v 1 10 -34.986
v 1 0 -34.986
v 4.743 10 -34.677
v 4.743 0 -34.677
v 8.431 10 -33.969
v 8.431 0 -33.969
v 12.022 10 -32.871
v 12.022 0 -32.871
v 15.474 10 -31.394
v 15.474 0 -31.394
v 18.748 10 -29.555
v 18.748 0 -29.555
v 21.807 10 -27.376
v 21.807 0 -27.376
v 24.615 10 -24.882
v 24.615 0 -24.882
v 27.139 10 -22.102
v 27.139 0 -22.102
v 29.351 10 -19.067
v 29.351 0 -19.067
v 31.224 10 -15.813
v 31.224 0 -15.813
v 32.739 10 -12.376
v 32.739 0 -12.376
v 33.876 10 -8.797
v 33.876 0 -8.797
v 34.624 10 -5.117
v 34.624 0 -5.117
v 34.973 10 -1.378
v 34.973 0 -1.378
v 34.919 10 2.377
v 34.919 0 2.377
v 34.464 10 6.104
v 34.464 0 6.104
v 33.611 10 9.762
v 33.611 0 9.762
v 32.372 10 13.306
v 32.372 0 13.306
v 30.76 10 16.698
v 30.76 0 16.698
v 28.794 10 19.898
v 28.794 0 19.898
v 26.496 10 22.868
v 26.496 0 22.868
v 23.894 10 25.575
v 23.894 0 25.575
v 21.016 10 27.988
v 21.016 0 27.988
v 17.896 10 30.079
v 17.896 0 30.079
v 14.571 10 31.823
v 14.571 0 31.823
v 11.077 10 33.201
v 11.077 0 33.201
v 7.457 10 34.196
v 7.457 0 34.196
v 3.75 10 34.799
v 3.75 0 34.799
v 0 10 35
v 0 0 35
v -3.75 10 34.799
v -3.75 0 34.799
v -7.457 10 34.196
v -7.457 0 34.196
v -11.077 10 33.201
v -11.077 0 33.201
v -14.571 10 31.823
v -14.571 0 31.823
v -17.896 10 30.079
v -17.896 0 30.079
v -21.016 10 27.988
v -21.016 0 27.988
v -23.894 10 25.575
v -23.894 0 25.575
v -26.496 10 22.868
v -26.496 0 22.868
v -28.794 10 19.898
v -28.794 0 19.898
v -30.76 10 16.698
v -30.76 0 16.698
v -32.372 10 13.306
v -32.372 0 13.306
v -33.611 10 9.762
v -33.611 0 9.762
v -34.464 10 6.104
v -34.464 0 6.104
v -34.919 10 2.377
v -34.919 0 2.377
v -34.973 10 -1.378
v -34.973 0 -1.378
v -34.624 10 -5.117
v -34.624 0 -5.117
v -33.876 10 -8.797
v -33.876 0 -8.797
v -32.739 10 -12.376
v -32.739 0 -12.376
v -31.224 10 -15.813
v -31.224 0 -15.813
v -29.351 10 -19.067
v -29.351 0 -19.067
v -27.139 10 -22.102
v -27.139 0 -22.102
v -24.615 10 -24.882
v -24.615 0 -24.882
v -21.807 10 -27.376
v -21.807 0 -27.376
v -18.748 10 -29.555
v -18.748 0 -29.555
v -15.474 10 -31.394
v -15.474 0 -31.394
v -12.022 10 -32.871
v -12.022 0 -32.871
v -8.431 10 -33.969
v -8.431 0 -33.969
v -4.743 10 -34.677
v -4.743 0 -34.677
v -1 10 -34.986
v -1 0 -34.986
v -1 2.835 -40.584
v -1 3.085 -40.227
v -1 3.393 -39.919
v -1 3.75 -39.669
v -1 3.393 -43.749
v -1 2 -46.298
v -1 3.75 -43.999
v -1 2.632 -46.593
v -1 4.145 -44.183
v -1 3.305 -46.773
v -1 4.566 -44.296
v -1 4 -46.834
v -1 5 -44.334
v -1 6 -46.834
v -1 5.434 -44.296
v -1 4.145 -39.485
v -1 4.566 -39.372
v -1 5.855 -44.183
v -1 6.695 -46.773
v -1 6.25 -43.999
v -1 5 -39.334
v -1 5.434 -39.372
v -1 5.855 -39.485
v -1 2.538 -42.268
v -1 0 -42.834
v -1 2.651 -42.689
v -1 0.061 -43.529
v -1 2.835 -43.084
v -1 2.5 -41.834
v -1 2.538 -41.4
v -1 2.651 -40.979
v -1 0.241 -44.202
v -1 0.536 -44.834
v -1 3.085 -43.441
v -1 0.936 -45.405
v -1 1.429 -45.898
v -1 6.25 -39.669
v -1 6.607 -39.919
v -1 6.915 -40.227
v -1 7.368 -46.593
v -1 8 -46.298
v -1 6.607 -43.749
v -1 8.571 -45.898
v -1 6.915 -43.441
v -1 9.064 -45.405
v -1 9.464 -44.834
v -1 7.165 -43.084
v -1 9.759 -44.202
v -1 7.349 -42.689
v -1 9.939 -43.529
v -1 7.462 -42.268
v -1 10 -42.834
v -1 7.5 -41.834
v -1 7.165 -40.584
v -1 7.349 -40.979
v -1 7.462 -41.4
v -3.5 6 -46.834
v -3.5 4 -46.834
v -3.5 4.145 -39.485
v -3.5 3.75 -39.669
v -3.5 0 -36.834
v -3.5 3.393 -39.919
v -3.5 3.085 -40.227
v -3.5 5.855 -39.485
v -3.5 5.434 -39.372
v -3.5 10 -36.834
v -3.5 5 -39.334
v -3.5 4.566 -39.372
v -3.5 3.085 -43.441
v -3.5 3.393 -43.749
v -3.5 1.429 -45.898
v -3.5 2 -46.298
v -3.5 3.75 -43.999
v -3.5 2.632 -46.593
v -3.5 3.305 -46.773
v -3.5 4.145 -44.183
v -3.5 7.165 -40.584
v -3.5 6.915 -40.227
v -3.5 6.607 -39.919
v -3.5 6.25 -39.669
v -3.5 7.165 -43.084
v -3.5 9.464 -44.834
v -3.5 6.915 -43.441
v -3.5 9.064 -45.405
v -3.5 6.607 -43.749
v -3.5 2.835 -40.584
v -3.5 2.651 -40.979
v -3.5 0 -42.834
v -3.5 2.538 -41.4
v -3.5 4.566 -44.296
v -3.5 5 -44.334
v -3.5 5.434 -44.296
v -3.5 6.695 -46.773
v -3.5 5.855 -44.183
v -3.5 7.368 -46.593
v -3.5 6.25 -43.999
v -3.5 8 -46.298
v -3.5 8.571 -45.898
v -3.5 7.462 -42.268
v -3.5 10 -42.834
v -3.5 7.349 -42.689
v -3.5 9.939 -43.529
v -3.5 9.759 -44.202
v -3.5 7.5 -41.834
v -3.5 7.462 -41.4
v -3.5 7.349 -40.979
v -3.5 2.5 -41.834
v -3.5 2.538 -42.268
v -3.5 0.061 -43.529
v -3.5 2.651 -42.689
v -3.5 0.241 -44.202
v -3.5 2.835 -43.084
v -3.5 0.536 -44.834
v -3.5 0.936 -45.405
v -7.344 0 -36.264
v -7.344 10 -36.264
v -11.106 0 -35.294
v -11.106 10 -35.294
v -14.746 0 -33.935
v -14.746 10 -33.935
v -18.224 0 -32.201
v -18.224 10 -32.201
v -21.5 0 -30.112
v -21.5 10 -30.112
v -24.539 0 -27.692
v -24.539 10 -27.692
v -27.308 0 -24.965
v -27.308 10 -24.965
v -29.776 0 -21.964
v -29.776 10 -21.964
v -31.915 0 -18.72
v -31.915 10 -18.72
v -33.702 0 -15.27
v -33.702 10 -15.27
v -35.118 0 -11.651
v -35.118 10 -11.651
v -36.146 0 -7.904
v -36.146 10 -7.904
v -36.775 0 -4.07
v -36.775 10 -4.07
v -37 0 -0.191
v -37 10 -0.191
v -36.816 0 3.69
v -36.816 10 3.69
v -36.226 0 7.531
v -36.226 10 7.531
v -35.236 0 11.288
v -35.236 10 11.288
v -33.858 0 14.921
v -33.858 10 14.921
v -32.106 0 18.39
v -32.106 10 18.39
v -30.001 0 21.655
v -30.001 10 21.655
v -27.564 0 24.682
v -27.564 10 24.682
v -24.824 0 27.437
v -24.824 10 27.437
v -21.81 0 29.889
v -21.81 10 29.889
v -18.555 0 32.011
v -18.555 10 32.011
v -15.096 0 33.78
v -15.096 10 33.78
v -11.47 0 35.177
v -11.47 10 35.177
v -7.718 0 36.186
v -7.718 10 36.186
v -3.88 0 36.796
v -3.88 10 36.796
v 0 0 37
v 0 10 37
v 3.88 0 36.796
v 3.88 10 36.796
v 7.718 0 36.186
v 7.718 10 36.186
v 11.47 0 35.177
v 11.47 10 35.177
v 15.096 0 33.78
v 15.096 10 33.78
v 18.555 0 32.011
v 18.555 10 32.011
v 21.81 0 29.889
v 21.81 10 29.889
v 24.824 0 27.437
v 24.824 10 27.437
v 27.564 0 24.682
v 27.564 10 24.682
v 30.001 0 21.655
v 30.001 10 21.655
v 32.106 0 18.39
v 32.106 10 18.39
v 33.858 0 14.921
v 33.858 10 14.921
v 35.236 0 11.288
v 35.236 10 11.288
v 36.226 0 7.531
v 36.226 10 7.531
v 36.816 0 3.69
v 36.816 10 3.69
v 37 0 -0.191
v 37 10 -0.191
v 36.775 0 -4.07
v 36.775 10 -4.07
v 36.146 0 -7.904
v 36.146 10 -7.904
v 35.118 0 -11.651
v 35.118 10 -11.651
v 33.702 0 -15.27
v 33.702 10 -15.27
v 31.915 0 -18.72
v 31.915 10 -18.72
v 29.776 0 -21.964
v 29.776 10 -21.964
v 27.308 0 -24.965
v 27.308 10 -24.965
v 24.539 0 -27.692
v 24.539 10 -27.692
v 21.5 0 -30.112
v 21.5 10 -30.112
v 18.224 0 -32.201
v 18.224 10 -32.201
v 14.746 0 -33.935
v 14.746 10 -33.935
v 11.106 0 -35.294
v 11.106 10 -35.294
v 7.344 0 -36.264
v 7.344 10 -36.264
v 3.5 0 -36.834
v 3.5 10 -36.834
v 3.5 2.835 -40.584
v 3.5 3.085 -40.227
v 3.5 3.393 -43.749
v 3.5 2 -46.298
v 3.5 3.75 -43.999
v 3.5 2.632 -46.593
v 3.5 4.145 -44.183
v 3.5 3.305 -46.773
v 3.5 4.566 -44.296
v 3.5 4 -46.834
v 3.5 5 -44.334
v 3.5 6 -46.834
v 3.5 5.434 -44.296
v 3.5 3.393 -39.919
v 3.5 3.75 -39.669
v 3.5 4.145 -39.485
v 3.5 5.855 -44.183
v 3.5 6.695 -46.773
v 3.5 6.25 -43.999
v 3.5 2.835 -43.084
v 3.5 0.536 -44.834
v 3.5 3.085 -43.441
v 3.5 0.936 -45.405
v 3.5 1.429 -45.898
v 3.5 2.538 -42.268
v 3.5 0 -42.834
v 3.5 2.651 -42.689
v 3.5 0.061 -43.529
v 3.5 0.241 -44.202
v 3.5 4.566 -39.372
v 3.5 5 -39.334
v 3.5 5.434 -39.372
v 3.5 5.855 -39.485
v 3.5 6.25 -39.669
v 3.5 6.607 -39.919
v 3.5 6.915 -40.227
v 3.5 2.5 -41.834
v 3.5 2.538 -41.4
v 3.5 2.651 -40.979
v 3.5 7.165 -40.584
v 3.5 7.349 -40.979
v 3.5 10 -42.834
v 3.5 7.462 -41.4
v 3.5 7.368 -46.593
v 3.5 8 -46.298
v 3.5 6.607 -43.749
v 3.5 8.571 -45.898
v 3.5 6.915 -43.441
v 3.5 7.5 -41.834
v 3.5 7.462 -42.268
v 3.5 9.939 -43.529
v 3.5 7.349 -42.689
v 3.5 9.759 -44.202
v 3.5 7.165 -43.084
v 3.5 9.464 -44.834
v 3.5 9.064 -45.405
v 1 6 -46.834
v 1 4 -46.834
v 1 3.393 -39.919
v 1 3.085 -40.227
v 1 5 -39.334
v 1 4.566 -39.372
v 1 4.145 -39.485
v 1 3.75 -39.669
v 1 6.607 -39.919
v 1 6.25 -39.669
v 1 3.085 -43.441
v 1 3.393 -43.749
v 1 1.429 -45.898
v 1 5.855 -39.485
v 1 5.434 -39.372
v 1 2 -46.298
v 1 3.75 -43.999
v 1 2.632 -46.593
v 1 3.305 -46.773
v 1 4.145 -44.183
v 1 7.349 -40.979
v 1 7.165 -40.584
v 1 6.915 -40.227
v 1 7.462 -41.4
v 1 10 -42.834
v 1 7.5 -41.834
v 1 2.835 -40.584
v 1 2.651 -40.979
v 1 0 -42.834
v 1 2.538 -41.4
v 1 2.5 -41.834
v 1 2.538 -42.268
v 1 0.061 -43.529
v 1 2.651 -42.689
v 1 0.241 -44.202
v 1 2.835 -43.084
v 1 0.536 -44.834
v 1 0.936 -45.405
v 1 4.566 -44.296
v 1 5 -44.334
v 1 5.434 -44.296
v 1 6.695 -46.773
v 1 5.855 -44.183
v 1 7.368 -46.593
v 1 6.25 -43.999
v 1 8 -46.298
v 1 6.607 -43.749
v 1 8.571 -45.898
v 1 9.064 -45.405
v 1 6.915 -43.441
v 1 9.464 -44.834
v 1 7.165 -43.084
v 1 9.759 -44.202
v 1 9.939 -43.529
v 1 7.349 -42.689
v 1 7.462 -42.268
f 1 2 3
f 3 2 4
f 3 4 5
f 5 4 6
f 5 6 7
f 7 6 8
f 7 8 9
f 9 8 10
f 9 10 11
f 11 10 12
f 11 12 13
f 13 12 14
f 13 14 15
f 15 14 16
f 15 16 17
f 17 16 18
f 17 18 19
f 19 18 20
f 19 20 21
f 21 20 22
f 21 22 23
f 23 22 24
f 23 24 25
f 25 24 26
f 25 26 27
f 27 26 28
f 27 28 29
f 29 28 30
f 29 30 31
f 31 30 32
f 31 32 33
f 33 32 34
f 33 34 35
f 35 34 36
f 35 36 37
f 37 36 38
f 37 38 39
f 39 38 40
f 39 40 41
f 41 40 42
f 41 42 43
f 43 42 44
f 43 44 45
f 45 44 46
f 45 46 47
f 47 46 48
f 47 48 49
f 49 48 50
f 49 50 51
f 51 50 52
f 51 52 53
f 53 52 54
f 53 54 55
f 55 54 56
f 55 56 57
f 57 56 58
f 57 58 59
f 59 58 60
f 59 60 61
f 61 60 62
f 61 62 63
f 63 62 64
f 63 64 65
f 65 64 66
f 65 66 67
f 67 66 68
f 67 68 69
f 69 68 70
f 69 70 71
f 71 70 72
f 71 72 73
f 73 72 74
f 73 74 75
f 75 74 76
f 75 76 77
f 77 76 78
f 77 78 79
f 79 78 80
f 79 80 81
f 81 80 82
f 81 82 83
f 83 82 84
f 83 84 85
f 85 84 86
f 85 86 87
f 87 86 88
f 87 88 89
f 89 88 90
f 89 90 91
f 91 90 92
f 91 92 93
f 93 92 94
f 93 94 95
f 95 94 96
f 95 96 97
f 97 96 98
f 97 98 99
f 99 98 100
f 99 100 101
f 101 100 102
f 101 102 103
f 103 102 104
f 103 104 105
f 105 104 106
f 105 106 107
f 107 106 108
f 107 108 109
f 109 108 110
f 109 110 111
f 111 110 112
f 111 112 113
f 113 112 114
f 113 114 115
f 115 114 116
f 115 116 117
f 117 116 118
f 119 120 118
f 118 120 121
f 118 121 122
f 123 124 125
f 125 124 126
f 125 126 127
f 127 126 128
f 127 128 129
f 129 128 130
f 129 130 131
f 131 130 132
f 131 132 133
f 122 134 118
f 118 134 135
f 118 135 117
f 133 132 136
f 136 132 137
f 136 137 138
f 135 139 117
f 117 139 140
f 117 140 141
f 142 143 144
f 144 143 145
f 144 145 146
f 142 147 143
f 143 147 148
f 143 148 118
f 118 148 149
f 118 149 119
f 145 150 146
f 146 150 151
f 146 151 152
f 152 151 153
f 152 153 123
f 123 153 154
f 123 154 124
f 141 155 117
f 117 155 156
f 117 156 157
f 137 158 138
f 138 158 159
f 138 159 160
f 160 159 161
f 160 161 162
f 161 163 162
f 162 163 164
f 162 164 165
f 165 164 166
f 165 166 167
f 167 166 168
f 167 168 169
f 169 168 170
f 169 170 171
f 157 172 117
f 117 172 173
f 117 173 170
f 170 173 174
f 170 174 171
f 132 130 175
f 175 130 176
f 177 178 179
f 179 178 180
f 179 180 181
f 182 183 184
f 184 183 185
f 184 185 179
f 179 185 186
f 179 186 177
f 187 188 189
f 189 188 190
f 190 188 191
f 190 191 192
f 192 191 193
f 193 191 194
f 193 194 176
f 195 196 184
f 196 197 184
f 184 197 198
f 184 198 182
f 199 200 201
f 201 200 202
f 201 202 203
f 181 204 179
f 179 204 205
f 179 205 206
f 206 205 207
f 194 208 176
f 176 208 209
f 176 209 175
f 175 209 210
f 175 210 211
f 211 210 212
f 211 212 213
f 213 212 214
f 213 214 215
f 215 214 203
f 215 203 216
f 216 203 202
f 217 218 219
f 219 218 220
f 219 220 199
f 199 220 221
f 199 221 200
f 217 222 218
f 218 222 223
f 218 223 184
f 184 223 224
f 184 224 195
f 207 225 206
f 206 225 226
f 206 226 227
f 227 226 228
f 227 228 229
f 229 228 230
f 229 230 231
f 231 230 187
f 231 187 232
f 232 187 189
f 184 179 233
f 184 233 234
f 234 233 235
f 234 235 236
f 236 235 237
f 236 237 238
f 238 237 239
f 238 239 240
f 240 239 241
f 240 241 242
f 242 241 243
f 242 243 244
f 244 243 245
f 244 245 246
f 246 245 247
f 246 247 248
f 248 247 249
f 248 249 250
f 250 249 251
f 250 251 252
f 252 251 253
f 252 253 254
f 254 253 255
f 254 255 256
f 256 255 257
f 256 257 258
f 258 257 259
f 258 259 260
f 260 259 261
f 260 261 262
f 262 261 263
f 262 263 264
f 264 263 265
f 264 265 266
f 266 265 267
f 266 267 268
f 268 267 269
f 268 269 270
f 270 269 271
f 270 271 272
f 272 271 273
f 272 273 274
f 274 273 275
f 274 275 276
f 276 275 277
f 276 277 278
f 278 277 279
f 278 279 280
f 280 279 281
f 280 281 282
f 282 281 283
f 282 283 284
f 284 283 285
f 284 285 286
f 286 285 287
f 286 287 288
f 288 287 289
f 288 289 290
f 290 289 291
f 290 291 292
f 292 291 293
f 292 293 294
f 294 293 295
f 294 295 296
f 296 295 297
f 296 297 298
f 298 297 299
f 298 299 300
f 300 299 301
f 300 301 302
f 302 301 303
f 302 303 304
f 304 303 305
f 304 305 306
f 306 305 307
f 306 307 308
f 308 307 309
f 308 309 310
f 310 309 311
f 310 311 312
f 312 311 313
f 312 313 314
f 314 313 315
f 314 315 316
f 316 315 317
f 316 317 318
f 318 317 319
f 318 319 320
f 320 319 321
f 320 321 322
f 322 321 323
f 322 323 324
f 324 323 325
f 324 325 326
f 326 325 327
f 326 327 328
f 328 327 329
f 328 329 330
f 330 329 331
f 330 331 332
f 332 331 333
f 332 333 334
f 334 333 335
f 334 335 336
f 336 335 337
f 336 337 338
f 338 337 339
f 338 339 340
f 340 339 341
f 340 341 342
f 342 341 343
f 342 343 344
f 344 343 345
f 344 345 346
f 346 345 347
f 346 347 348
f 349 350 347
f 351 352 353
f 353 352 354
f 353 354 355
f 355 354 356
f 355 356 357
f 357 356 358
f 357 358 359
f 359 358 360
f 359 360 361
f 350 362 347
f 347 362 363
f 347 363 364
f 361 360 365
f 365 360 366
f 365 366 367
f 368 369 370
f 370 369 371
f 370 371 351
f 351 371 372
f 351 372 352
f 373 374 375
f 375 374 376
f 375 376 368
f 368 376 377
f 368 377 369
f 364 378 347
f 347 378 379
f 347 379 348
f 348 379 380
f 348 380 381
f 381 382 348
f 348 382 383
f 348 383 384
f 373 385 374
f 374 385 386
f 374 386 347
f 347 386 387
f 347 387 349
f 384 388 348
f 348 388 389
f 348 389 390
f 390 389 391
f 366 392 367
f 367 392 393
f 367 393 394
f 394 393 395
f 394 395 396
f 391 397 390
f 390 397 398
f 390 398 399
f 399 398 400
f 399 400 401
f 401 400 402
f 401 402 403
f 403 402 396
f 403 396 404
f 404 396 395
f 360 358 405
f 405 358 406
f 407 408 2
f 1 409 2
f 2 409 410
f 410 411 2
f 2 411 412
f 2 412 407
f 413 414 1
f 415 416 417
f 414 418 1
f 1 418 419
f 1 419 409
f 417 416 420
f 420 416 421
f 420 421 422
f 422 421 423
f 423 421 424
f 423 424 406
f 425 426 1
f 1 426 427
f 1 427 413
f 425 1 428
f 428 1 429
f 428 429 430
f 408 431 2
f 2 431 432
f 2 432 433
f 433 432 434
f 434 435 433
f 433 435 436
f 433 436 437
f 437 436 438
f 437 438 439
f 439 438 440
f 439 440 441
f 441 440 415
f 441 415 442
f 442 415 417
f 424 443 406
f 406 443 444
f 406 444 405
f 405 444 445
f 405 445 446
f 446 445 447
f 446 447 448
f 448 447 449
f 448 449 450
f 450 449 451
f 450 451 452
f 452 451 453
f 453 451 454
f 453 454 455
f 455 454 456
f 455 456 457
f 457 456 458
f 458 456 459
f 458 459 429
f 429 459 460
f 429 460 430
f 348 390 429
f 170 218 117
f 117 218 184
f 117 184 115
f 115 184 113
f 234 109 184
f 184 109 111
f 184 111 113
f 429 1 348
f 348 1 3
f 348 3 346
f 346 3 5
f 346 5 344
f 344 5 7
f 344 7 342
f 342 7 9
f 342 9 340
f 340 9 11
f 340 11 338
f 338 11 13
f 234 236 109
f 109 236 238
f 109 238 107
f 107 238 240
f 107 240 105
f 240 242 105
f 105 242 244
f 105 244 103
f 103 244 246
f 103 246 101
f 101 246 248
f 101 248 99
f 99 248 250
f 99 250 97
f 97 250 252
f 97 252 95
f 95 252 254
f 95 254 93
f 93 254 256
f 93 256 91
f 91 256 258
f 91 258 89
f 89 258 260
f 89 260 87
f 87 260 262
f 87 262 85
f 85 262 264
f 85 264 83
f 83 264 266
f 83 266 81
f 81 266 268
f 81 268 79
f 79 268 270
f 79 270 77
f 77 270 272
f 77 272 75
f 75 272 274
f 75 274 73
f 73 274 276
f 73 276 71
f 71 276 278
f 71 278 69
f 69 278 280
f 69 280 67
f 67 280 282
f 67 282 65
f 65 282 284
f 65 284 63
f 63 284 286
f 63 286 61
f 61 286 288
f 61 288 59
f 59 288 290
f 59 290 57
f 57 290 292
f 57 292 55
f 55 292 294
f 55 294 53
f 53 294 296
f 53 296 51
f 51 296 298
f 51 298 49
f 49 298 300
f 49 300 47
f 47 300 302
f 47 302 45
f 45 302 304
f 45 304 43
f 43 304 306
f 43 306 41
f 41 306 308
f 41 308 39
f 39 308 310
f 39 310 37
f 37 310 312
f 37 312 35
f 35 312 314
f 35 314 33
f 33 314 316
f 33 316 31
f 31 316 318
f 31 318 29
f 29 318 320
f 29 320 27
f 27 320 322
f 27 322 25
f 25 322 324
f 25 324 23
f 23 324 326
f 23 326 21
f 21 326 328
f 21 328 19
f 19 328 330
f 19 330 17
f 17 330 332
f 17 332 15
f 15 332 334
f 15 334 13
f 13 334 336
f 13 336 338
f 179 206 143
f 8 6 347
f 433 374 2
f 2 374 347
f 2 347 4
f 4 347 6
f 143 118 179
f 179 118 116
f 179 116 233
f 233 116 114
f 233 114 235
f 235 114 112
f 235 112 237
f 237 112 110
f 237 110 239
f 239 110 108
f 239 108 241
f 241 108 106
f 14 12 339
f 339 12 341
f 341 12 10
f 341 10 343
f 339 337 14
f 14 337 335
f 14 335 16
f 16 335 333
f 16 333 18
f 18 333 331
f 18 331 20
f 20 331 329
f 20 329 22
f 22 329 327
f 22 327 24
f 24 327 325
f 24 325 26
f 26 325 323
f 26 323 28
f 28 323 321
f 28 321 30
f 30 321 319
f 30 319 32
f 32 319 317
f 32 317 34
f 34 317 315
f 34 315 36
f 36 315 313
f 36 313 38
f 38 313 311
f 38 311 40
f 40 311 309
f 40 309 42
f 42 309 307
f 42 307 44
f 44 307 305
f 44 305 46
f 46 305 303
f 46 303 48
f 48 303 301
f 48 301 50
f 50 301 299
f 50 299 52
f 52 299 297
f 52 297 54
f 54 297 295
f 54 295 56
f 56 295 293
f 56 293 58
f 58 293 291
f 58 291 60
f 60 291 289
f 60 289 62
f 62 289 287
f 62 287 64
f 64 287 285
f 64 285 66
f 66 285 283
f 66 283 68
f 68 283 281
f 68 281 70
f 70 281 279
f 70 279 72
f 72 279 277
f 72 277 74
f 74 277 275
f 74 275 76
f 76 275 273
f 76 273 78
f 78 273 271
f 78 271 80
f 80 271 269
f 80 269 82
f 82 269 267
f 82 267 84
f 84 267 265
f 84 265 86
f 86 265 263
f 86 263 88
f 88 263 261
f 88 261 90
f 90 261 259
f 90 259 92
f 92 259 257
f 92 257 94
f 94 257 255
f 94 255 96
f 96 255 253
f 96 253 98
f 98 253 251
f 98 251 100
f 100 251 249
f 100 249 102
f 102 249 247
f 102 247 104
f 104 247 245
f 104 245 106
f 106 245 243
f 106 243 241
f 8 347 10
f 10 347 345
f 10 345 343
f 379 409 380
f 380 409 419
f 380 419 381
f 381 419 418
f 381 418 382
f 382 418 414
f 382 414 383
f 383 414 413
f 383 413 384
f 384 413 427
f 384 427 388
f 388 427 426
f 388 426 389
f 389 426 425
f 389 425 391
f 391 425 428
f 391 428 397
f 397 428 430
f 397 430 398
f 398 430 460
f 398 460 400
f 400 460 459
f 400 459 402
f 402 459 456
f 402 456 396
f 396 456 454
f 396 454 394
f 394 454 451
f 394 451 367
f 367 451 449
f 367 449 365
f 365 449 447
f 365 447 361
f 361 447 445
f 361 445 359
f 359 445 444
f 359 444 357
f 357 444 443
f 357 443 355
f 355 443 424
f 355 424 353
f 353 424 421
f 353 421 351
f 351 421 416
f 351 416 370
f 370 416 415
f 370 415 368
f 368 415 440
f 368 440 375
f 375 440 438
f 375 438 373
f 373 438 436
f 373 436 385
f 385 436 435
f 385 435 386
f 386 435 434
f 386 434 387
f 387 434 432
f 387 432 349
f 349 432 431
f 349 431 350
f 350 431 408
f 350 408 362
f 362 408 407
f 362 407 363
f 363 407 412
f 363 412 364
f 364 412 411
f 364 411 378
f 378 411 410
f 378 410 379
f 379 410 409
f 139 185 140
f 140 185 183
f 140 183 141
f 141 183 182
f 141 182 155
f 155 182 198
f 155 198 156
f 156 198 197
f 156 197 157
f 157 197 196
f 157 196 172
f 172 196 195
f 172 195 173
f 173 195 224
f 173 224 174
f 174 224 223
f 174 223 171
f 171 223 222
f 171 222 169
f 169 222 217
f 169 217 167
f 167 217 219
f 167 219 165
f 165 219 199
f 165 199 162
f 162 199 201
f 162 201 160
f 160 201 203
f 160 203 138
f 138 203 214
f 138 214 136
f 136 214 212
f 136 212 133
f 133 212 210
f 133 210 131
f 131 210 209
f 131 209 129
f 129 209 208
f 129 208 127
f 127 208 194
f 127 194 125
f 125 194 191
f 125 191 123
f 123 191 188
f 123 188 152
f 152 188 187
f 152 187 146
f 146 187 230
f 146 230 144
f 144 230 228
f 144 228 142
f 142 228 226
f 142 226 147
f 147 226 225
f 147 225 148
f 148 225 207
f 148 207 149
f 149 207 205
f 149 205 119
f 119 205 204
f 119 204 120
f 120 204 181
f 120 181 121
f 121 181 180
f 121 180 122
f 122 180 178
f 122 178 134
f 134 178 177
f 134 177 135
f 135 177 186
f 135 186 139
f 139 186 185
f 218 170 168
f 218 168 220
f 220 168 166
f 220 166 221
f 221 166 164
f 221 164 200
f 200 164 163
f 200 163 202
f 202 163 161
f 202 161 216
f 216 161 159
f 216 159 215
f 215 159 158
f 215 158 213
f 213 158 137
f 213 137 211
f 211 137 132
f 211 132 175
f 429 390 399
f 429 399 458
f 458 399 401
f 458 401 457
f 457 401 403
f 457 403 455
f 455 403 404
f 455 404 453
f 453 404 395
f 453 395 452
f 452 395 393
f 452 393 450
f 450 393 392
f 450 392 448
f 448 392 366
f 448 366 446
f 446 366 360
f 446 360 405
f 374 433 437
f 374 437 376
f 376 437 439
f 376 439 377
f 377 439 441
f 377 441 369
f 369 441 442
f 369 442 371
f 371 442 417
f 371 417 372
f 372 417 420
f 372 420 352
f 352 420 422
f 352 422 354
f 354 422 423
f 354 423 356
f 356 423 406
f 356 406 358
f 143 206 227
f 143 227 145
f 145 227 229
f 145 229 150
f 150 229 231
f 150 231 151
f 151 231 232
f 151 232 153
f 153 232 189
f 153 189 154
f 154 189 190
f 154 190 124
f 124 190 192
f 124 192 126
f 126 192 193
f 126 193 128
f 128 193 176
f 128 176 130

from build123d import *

# Parameters (mm, degrees)
SALIENTE_EXTRUIR1_DEPTH = 10
CROQUIS2_R              = 2.5
CORTAR_EXTRUIR1_DEPTH   = 10
REDONDEO1_R             = 4


with BuildPart() as part:
    # Croquis1 → Saliente-Extruir1 (new body)
    with BuildSketch(Plane(origin=(0, 0, 0), x_dir=(1, 0, 0), z_dir=(0, 1, 0))):
        with BuildLine():
            Line((-1, 34.985711369), (-1, 46.834087473))
            Line((-1, 46.834087473), (-3.5, 46.834087473))
            Line((-3.5, 46.834087473), (-3.5, 36.834087473))
            ThreePointArc((-3.5, 36.834087473), (0, -37), (3.5, 36.834087473))
            Line((3.5, 36.834087473), (3.5, 46.834087473))
            Line((3.5, 46.834087473), (1, 46.834087473))
            Line((1, 46.834087473), (1, 34.985711369))
            ThreePointArc((1, 34.985711369), (0, -35), (-1, 34.985711369))
        make_face()
    extrude(amount=SALIENTE_EXTRUIR1_DEPTH)

    # Croquis2 → Cortar-Extruir1 (cut)
    with BuildSketch(Plane.ZY.offset(3.5)):
        with Locations((-41.834087473, 5)):
            Circle(CROQUIS2_R)
    extrude(amount=-CORTAR_EXTRUIR1_DEPTH, mode=Mode.SUBTRACT)

    # Redondeo1
    redondeo1_edges = [part.edges().sort_by_distance(p)[0] for p in [
        (-2.25, 0, -46.834087473),
        (-2.25, 10, -46.834087473),
        (2.25, 10, -46.834087473),
        (2.25, 0, -46.834087473),
    ]]
    fillet(redondeo1_edges, radius=REDONDEO1_R)


solid = part.part
